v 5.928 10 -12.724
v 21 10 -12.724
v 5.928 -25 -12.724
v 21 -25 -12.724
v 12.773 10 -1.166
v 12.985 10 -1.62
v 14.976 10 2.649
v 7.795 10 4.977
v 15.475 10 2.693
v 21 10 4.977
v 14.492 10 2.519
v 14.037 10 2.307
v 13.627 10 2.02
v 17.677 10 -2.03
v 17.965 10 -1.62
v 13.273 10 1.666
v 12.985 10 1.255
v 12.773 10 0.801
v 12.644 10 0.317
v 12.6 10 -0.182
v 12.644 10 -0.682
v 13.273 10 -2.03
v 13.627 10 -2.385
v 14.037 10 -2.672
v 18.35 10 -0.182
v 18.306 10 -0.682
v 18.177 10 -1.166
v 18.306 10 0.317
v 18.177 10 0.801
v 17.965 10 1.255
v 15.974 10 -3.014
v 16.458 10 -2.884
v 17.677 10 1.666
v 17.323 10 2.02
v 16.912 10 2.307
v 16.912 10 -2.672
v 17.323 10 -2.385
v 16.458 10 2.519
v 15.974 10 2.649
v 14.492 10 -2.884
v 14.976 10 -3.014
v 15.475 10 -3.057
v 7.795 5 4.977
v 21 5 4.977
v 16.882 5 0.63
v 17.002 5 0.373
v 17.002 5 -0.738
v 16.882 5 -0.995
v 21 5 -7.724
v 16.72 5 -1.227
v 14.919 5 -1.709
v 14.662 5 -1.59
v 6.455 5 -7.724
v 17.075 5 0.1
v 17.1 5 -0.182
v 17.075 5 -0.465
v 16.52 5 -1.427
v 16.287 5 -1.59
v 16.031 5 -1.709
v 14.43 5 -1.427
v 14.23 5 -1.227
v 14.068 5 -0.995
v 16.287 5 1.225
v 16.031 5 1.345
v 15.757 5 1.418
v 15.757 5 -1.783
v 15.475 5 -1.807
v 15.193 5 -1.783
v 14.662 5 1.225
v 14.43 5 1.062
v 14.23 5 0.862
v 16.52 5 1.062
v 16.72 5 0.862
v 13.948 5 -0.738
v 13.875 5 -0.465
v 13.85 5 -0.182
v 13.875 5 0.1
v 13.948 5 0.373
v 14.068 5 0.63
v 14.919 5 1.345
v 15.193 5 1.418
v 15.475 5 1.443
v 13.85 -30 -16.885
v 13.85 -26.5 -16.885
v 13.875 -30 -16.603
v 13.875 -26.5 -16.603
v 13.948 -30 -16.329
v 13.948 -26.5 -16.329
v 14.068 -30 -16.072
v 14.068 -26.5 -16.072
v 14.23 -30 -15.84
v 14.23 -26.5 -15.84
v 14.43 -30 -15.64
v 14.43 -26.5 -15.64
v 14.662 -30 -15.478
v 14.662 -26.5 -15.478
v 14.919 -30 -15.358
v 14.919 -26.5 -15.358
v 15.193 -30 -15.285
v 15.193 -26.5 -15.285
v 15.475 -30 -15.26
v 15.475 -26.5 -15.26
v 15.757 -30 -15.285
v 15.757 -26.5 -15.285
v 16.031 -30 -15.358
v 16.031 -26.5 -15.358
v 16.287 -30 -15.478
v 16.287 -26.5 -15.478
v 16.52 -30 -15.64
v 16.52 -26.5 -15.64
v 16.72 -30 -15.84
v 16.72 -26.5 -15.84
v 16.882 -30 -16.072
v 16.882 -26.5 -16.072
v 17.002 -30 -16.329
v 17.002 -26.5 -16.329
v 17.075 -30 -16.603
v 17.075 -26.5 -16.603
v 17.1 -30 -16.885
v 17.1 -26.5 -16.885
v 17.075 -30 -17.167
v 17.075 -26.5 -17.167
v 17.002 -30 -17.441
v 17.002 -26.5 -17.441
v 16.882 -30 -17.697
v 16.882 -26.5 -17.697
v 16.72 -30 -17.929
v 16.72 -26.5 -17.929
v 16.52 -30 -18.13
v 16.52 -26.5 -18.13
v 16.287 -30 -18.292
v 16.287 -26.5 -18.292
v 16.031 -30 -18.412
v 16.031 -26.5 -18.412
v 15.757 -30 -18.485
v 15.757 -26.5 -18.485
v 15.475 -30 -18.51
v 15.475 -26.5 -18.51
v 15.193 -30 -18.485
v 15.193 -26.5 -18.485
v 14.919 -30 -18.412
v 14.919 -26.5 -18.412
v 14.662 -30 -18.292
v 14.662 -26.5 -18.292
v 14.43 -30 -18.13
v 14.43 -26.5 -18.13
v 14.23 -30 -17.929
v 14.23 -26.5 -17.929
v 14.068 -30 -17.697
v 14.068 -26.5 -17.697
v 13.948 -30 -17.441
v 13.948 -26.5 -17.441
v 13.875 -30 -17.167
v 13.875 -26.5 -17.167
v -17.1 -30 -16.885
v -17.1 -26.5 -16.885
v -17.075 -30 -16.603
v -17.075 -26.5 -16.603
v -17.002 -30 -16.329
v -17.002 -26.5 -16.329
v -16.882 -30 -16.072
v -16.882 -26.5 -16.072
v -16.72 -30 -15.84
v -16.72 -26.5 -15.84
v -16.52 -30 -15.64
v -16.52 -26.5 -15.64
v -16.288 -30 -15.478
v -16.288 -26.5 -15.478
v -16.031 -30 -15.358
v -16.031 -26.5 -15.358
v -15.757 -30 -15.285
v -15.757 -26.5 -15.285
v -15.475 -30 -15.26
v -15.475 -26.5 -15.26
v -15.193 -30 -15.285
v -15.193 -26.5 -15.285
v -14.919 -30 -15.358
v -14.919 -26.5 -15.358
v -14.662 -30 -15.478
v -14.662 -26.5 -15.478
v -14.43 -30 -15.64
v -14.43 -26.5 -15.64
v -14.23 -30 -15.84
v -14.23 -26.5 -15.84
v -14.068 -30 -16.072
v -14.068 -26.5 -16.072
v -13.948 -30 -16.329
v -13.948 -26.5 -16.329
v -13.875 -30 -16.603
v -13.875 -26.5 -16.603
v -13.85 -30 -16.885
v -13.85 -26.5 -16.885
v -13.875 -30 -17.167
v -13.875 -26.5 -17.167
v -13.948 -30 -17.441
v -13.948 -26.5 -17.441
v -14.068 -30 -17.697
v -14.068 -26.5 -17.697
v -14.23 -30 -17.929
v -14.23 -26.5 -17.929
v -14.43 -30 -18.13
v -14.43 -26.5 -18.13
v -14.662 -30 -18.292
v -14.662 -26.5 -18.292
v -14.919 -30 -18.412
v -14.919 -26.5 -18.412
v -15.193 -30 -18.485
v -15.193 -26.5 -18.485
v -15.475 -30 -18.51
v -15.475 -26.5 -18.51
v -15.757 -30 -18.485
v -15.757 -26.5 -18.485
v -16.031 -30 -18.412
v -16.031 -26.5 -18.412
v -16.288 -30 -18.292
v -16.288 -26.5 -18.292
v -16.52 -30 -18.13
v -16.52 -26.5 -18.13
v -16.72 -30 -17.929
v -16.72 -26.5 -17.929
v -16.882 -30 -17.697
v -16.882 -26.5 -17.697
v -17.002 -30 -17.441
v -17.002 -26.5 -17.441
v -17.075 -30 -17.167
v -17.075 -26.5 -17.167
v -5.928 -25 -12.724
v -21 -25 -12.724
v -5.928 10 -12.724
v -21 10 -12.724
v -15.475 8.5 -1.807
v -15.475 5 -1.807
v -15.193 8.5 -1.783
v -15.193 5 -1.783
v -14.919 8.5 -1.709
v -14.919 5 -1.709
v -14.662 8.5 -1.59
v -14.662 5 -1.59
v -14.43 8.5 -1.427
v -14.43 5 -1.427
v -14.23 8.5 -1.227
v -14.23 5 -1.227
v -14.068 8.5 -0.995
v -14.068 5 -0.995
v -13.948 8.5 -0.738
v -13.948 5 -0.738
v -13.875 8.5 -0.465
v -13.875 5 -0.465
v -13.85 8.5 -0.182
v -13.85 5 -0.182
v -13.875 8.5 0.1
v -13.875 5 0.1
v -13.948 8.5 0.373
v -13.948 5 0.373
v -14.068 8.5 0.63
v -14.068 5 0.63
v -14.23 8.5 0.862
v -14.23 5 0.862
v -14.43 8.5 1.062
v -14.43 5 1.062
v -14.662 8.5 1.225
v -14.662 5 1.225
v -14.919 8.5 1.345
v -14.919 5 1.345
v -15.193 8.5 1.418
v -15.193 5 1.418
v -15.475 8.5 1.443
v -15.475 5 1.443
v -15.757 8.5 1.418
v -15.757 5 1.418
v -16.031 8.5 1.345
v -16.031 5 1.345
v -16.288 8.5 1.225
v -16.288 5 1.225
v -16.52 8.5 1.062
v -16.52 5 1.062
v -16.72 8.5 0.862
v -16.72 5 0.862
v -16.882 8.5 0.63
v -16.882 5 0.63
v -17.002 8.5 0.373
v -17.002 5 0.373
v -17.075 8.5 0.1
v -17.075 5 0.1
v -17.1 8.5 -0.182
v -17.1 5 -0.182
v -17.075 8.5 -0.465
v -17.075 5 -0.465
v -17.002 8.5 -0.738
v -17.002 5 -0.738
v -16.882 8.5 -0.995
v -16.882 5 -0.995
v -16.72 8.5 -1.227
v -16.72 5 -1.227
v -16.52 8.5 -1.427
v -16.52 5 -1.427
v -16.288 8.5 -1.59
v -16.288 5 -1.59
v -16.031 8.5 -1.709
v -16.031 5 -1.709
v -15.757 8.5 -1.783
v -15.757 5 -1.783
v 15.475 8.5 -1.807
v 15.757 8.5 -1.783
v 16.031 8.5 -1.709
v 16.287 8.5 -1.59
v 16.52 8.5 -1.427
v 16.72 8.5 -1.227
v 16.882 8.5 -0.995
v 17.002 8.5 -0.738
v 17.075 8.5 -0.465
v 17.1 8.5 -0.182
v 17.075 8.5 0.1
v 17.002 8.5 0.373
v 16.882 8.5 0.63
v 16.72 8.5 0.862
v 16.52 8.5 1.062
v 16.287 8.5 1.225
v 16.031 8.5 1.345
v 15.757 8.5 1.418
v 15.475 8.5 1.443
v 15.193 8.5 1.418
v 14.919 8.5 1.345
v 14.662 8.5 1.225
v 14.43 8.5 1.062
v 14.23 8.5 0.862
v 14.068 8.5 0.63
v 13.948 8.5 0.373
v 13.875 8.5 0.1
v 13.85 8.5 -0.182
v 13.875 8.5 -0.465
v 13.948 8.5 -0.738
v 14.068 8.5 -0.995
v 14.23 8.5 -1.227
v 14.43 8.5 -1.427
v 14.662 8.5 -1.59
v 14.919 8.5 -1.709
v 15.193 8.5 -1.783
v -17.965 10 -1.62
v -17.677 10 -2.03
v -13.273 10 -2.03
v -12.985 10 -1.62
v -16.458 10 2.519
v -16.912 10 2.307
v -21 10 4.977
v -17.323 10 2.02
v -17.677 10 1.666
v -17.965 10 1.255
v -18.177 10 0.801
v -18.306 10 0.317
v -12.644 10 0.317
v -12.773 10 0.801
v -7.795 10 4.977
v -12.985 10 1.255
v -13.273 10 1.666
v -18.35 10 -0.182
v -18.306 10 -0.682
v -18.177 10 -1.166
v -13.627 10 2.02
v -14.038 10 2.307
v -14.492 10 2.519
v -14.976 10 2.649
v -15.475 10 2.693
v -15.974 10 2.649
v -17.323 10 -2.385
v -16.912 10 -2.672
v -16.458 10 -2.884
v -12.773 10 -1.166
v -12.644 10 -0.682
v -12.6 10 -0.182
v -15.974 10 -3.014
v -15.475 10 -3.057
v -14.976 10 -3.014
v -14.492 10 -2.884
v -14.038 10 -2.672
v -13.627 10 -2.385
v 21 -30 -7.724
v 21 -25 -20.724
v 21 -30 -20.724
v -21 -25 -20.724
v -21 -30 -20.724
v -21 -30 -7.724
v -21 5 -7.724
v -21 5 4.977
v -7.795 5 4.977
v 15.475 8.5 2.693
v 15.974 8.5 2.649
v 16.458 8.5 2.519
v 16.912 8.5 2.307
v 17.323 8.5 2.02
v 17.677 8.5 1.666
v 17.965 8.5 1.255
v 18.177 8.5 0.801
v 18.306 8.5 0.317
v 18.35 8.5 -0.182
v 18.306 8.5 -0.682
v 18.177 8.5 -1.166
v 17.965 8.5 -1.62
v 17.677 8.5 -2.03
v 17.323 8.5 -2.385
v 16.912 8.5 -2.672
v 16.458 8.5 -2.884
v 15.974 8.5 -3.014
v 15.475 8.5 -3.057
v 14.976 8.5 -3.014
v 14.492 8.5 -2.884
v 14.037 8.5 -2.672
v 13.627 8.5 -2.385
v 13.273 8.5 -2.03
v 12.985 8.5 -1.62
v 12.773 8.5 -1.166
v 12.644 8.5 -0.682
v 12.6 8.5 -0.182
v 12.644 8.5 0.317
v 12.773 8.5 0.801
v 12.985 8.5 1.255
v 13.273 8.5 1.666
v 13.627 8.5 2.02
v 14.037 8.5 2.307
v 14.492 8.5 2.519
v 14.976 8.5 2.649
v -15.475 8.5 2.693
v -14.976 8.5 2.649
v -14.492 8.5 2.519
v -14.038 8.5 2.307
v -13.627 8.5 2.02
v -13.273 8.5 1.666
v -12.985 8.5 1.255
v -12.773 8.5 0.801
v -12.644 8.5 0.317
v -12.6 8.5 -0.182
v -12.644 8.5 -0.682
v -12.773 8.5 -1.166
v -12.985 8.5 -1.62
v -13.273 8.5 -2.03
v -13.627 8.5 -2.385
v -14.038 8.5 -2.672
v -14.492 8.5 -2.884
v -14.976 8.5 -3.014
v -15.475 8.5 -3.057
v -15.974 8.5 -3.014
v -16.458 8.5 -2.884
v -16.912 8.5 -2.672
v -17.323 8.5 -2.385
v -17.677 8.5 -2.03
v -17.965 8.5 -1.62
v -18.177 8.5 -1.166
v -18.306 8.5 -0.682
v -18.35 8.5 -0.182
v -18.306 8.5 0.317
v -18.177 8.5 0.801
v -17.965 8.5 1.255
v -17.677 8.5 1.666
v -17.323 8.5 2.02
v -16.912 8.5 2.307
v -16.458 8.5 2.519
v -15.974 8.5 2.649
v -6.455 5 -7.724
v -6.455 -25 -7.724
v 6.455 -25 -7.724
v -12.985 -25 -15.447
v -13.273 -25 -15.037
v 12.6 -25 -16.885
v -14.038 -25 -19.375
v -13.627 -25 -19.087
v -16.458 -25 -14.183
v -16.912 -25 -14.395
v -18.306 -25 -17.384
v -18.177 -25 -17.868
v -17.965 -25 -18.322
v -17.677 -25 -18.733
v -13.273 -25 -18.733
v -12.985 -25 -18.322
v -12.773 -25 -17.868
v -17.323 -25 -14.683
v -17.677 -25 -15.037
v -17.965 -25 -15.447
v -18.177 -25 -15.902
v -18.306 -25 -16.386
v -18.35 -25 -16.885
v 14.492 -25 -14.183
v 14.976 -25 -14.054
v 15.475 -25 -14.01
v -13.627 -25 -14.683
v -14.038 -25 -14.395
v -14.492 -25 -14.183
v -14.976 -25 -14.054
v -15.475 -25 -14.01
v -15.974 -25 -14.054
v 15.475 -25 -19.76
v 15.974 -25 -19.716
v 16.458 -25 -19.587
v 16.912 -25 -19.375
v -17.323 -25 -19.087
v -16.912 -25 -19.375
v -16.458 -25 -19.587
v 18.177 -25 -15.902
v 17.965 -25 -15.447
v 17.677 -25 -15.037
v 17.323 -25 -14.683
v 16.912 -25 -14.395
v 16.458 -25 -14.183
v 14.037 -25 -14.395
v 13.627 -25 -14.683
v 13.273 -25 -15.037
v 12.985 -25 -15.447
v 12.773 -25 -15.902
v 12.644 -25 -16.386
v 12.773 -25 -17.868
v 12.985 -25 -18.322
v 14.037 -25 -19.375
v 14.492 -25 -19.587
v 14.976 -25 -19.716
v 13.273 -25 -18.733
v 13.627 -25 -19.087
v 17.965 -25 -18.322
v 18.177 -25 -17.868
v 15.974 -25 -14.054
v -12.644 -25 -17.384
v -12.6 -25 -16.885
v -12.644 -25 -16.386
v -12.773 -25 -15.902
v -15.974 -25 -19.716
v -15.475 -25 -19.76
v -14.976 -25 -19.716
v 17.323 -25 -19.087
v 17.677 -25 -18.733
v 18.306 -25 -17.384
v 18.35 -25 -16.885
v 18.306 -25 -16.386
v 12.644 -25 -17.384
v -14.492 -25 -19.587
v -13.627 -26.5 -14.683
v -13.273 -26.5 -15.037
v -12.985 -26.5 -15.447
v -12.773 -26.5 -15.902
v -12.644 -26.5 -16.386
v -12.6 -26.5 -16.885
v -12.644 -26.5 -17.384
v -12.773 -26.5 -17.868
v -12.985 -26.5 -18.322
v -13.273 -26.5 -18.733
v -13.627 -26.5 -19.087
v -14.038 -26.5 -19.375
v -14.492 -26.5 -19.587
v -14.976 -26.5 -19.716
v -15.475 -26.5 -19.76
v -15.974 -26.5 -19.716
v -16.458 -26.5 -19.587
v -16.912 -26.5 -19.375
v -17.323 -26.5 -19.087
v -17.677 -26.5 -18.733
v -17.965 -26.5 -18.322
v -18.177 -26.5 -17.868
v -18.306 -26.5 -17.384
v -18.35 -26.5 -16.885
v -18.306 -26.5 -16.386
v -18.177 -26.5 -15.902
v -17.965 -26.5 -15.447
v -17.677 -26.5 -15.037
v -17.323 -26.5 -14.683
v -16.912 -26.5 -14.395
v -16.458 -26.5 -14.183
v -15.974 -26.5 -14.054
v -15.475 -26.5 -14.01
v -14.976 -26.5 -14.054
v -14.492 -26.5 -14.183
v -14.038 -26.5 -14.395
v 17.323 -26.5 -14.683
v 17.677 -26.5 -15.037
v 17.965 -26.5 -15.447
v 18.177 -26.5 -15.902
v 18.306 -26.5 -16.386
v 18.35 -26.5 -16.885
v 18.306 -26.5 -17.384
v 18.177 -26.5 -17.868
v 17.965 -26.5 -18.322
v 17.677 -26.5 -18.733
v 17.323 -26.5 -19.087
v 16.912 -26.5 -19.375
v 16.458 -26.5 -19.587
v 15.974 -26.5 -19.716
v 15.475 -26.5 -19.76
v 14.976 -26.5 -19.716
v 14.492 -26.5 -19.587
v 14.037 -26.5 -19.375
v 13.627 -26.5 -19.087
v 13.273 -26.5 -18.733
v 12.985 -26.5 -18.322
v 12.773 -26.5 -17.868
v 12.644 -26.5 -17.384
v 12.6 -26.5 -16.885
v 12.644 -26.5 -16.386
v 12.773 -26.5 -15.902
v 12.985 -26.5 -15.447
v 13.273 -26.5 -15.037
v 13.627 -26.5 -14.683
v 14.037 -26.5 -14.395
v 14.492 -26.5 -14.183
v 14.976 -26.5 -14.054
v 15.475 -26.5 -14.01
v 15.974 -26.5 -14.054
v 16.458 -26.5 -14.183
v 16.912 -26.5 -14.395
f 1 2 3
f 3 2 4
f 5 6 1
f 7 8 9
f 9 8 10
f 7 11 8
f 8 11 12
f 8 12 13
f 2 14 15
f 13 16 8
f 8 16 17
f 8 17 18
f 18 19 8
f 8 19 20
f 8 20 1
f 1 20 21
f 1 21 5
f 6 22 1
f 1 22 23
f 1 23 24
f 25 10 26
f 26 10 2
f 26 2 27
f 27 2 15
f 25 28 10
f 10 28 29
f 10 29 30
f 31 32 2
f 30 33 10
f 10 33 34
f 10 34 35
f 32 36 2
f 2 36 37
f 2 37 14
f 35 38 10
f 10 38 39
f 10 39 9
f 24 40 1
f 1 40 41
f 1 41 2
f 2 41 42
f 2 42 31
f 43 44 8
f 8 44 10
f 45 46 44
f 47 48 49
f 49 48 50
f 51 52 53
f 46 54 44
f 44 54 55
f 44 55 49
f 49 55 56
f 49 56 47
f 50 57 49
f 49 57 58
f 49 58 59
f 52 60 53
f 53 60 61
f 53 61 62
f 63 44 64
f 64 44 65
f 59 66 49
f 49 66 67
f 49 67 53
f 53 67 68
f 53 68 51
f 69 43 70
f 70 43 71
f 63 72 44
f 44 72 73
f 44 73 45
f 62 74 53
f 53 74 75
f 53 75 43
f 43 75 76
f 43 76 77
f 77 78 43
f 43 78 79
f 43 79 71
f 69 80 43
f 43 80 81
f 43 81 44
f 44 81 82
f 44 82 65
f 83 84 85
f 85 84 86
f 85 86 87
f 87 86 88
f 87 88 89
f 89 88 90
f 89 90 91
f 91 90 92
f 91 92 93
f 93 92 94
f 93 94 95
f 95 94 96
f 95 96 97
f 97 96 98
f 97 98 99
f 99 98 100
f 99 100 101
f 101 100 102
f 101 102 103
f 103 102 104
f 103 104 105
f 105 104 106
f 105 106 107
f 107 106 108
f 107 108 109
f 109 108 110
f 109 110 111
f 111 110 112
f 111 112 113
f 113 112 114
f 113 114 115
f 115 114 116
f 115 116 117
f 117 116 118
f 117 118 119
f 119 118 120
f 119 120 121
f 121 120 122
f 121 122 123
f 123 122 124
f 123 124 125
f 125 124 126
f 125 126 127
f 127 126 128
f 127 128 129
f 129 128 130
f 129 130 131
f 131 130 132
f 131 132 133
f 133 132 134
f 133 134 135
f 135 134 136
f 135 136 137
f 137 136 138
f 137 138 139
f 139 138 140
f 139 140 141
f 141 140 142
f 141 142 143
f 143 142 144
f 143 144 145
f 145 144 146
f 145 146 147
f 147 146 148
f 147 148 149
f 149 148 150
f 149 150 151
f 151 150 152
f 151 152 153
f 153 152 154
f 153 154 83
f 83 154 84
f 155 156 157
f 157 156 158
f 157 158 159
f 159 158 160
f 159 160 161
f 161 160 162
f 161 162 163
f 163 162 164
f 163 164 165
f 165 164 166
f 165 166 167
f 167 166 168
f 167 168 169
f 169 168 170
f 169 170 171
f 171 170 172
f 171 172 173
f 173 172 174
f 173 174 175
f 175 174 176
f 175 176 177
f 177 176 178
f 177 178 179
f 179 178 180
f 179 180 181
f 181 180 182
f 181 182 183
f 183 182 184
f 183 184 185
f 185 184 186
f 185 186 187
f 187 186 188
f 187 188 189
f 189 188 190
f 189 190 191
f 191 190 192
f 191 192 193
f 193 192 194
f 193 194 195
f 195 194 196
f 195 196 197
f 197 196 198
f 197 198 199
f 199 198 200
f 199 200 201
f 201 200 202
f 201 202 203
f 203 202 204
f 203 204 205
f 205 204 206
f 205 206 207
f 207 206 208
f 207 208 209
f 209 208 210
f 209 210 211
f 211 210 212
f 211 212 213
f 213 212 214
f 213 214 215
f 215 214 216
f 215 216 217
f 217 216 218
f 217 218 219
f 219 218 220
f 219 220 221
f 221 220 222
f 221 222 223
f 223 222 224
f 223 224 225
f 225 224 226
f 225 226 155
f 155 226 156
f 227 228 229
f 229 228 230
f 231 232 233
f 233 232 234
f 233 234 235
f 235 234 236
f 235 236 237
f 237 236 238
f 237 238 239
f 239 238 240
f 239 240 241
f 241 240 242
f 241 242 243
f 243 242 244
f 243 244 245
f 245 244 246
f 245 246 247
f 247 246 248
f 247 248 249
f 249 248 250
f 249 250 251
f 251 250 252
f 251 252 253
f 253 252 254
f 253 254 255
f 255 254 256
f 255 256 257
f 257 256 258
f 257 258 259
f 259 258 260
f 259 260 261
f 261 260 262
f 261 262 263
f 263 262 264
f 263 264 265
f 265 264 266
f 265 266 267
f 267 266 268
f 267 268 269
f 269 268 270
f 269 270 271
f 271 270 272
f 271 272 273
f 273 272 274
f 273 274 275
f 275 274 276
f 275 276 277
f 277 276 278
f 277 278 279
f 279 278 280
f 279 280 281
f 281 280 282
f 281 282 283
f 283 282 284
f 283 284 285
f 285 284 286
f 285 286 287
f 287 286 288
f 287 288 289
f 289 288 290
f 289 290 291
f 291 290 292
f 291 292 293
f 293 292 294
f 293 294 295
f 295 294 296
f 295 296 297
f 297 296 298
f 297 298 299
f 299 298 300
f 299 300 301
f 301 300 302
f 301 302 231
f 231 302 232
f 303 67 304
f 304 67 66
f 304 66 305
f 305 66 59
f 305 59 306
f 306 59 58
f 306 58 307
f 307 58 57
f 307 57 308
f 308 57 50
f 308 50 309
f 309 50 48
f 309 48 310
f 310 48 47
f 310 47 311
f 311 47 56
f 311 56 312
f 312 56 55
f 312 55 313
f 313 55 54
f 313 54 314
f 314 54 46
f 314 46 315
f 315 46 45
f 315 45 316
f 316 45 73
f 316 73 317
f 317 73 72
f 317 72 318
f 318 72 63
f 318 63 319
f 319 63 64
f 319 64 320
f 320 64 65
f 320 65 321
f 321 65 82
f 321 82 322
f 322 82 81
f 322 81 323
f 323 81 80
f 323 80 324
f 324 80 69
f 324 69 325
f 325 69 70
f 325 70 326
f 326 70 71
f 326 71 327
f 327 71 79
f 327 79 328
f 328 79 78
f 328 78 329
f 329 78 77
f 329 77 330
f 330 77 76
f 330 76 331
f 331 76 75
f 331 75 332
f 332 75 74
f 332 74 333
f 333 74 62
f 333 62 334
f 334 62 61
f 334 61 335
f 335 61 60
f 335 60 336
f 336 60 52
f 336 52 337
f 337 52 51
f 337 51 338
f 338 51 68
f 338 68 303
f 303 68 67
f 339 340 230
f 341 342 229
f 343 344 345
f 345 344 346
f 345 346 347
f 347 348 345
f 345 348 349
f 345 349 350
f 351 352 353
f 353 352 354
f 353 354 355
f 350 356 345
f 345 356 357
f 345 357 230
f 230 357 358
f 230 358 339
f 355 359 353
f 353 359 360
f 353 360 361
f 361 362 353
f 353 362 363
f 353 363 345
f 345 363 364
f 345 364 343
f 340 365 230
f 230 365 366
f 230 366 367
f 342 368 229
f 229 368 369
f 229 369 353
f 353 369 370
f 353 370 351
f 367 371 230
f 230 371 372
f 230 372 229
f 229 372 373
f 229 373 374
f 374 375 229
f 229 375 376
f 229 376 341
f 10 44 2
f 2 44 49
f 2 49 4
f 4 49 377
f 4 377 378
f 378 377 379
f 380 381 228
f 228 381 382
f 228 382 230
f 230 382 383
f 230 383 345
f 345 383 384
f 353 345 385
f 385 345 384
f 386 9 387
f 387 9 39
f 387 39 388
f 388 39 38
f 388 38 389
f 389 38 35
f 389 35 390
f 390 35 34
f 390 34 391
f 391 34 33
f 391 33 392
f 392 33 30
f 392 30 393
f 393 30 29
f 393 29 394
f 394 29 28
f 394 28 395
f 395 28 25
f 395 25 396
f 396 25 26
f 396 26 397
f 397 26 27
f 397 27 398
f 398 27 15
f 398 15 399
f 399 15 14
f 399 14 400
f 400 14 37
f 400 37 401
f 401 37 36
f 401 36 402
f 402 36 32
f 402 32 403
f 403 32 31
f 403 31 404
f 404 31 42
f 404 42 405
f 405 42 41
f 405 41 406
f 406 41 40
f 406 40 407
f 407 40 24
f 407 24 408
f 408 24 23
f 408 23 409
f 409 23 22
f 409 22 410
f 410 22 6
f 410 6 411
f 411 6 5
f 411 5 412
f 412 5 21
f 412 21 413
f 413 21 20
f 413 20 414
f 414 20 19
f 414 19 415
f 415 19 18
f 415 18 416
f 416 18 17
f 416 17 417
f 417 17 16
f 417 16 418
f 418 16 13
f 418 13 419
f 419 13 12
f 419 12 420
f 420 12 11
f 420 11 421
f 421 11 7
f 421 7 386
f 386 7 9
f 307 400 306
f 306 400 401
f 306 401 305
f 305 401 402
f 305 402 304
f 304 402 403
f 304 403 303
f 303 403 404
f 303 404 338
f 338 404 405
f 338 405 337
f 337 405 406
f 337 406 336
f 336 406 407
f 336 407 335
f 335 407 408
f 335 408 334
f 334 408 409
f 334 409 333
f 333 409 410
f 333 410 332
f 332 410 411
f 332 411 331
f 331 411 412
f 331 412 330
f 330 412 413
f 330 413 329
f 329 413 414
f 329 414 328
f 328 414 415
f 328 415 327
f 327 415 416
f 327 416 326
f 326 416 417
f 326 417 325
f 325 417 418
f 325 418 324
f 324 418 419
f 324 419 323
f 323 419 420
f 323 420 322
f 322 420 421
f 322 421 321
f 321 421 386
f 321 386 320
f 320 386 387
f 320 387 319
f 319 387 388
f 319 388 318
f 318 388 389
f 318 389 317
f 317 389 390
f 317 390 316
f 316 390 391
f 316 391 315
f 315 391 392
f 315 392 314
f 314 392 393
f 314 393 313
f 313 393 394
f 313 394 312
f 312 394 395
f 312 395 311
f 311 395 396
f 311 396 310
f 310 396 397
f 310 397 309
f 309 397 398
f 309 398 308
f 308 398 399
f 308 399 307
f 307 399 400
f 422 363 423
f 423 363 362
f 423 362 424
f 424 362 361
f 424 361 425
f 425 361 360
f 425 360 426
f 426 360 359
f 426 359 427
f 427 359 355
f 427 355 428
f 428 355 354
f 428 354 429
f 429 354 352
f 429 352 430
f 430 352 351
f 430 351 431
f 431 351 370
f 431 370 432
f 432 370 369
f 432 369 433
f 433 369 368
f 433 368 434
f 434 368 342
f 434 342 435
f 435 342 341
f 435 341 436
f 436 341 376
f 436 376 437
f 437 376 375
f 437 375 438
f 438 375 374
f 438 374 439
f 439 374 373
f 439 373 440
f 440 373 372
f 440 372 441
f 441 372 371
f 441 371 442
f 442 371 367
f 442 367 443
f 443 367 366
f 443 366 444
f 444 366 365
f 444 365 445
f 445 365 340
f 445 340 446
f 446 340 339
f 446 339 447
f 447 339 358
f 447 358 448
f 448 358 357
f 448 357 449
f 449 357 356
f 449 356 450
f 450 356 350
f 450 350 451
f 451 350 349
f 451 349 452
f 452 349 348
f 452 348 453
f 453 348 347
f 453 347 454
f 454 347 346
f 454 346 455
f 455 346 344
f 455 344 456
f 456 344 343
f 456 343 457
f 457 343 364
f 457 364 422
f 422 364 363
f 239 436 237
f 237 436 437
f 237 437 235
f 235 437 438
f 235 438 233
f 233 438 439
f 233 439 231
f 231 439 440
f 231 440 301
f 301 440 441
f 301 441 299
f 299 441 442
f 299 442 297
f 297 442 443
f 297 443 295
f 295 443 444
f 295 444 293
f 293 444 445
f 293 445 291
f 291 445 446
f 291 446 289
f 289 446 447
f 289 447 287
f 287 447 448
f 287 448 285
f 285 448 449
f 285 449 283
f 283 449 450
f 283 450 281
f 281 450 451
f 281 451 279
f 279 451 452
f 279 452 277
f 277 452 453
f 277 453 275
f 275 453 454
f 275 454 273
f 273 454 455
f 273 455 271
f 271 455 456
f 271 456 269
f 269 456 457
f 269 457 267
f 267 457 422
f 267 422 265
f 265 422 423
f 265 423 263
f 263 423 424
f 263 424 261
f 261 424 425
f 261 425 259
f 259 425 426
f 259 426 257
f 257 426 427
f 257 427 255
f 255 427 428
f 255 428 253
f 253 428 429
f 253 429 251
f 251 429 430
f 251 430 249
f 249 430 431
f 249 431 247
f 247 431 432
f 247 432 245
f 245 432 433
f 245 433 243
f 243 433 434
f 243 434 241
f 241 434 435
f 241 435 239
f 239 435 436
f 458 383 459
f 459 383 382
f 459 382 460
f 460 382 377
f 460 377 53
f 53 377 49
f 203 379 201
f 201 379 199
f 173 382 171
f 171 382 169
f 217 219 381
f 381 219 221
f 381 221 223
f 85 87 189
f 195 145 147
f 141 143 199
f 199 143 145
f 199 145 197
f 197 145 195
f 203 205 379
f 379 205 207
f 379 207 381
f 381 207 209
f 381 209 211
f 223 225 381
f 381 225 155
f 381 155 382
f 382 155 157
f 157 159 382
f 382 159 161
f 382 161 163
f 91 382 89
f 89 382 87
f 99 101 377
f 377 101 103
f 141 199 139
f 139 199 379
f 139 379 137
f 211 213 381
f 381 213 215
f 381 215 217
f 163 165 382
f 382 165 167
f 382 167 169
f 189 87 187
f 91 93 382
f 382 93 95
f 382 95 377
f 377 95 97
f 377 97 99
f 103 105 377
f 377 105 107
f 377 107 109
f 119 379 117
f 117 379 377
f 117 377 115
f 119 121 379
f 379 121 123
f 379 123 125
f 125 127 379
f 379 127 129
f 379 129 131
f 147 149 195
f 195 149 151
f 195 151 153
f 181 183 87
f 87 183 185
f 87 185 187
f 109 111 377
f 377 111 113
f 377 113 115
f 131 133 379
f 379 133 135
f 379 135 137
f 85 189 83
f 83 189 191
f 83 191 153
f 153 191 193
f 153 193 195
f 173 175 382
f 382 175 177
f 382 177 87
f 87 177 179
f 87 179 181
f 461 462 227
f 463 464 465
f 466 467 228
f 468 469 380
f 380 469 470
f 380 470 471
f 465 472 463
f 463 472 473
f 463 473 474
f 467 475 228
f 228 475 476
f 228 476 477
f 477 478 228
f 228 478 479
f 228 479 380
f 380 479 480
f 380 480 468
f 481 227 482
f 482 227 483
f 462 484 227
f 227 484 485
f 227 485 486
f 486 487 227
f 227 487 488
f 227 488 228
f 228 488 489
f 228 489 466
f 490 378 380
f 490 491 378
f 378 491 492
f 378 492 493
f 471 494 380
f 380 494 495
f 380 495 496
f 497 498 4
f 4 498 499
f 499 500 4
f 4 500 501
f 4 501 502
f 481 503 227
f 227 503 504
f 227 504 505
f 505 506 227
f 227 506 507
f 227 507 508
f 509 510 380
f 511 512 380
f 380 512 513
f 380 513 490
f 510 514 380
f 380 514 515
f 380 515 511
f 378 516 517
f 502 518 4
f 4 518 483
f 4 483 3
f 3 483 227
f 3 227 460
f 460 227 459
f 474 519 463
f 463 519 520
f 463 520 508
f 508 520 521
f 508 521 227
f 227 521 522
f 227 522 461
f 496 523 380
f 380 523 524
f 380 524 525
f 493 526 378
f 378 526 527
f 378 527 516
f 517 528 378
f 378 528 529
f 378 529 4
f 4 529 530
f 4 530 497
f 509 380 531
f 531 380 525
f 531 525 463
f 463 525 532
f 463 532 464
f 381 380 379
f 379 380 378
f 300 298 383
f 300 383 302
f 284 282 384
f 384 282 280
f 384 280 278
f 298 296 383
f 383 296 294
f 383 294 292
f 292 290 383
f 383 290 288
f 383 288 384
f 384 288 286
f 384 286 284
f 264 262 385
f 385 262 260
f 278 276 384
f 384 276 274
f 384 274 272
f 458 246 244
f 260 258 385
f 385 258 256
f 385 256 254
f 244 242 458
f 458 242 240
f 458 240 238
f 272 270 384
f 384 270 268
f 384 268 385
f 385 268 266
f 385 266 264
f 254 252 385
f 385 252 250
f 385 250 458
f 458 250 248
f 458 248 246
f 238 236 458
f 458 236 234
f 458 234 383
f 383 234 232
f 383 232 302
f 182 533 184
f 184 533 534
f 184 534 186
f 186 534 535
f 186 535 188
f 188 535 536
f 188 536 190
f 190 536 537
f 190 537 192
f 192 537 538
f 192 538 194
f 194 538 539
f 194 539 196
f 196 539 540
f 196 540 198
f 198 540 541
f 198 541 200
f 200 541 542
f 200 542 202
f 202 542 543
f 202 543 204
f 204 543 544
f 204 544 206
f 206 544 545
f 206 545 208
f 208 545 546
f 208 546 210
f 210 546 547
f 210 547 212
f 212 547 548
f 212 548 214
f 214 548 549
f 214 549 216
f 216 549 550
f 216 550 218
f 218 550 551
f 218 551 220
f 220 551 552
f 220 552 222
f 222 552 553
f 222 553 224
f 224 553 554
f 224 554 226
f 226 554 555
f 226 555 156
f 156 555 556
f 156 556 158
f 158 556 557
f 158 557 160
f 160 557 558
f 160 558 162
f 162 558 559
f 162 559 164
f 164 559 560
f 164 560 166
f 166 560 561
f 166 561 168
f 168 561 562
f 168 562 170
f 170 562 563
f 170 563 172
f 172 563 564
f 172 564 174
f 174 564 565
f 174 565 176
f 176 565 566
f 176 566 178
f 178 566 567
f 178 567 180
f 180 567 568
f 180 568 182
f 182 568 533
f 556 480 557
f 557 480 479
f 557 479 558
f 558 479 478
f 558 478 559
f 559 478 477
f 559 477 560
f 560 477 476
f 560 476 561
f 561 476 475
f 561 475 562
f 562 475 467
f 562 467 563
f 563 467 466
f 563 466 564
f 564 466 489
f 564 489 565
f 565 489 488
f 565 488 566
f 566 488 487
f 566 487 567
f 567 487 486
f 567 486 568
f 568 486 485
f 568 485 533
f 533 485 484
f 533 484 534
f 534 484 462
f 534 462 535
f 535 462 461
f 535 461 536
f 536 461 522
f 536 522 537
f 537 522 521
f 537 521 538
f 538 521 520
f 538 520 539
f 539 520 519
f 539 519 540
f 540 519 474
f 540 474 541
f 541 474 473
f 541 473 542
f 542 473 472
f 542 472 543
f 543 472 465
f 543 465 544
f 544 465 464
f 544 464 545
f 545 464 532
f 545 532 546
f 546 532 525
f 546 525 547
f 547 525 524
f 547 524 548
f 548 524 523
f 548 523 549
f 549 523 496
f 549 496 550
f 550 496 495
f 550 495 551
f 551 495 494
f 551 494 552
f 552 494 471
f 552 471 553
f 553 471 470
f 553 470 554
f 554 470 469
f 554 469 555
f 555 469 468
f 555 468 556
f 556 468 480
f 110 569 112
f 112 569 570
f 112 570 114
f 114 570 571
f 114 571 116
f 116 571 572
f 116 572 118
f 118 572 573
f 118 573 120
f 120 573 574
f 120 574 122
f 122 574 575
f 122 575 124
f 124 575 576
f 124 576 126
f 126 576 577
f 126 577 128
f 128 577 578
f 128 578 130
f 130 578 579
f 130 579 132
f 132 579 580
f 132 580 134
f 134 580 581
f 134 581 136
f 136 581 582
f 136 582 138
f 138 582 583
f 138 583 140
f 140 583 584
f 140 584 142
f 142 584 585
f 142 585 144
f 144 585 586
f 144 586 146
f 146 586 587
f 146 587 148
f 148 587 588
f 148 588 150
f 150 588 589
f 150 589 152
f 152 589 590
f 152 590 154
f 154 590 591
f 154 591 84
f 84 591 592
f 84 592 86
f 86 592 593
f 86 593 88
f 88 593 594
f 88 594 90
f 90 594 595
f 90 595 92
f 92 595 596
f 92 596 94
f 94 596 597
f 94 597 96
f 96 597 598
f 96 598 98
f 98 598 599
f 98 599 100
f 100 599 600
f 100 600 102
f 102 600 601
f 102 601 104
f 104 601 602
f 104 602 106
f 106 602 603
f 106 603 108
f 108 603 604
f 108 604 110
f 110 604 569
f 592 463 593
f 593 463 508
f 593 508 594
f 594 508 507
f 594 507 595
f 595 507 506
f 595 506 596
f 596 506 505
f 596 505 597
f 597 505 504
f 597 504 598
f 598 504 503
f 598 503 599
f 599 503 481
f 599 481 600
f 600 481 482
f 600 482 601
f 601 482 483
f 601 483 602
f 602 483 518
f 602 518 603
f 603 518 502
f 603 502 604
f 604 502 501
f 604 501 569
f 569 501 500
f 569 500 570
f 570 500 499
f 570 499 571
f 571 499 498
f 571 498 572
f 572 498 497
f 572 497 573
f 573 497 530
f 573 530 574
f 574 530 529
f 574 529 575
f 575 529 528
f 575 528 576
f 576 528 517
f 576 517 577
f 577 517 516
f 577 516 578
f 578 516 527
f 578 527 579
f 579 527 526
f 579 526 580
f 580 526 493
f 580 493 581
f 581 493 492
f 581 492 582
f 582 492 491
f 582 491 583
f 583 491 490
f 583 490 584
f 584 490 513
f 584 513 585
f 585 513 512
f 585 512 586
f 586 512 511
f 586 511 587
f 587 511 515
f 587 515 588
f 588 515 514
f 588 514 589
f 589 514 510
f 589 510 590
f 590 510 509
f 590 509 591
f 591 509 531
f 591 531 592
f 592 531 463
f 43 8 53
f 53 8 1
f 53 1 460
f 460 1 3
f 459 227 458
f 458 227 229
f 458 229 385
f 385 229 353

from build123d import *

# Parameters (mm, degrees)
SKETCH2_R           = 1.625
BOSS_EXTRUDE1_DEPTH = 10
SKETCH3_R           = 2.875
CUT_EXTRUDE1_DEPTH  = 1.5
SKETCH4_W           = 42
SKETCH4_H           = 5
BOSS_EXTRUDE2_DEPTH = 30
SKETCH5_W           = 42
SKETCH5_H           = 5
BOSS_EXTRUDE3_DEPTH = 8
CUT_EXTRUDE2_REACH  = 44
SKETCH6_W           = 12.701613413
SKETCH6_H           = 5
CUT_EXTRUDE3_REACH  = 7
SKETCH8_R           = 1.625
SKETCH9_R           = 2.875
CUT_EXTRUDE4_DEPTH  = 1.5
CUT_EXTRUDE5_DEPTH  = 35


with BuildPart() as part:
    # Sketch2 → Boss-Extrude1 (new body)
    with BuildSketch(Plane(origin=(0, 0, 0), x_dir=(1, 0, 0), z_dir=(0, 1, 0))):
        Polygon((-21, 4.97717469), (-21, -4.97717469), (21, -4.97717469), (21, 4.97717469), (21, 12.724438723), (-21, 12.724438723), align=None)
        with Locations((-15.475, 0.182409544)):
            Circle(SKETCH2_R, mode=Mode.SUBTRACT)
        with Locations((15.475, 0.182409544)):
            Circle(SKETCH2_R, mode=Mode.SUBTRACT)
    extrude(amount=BOSS_EXTRUDE1_DEPTH)

    # Sketch3 → Cut-Extrude1 (cut)
    with BuildSketch(Plane(origin=(0, 10, 0), x_dir=(1, 0, 0), z_dir=(0, 1, 0))):
        with Locations((-15.475, 0.182409544)):
            Circle(SKETCH3_R)
        with Locations((15.475, 0.182409544)):
            Circle(SKETCH3_R)
    extrude(amount=-CUT_EXTRUDE1_DEPTH, mode=Mode.SUBTRACT)

    # Sketch4 → Boss-Extrude2 (add)
    with BuildSketch(Plane.XZ):
        with Locations((0, -10.224438723)):
            Rectangle(SKETCH4_W, SKETCH4_H)
    extrude(amount=BOSS_EXTRUDE2_DEPTH)

    # Sketch5 → Boss-Extrude3 (add)
    with BuildSketch(Plane(origin=(0, 0, -12.724438723), x_dir=(-1, 0, 0), z_dir=(0, 0, -1))):
        with Locations((0, -27.5)):
            Rectangle(SKETCH5_W, SKETCH5_H)
    extrude(amount=BOSS_EXTRUDE3_DEPTH)

    # Sketch6 → Cut-Extrude2 (cut, up to next)
    with BuildSketch(Plane.ZY.offset(21), mode=Mode.PRIVATE) as cut_extrude2_sk1:
        with Locations((-1.373632017, 2.5)):
            Rectangle(SKETCH6_W, SKETCH6_H)
    cut_extrude2_tool1 = extrude(cut_extrude2_sk1.sketch, amount=-CUT_EXTRUDE2_REACH, mode=Mode.PRIVATE) & part.part
    add(cut_extrude2_tool1.solids().sort_by_distance((-21, 2.5, -1.373632))[0], mode=Mode.SUBTRACT)

    # Sketch8 → Cut-Extrude3 (cut, up to next)
    with BuildSketch(Plane(origin=(0, -25, 0), x_dir=(1, 0, 0), z_dir=(0, 1, 0)), mode=Mode.PRIVATE) as cut_extrude3_sk1:
        with Locations((-15.475, 16.884966607)):
            Circle(SKETCH8_R)
    cut_extrude3_tool1 = extrude(cut_extrude3_sk1.sketch, amount=-CUT_EXTRUDE3_REACH, mode=Mode.PRIVATE) & part.part
    add(cut_extrude3_tool1.solids().sort_by_distance((-15.475, -25, -16.884967))[0], mode=Mode.SUBTRACT)
    # Sketch8 → Cut-Extrude3 (cut, up to next)
    with BuildSketch(Plane(origin=(0, -25, 0), x_dir=(1, 0, 0), z_dir=(0, 1, 0)), mode=Mode.PRIVATE) as cut_extrude3_sk2:
        with Locations((15.475, 16.884966607)):
            Circle(SKETCH8_R)
    cut_extrude3_tool2 = extrude(cut_extrude3_sk2.sketch, amount=-CUT_EXTRUDE3_REACH, mode=Mode.PRIVATE) & part.part
    add(cut_extrude3_tool2.solids().sort_by_distance((15.475, -25, -16.884967))[0], mode=Mode.SUBTRACT)

    # Sketch9 → Cut-Extrude4 (cut)
    with BuildSketch(Plane(origin=(0, -25, 0), x_dir=(1, 0, 0), z_dir=(0, 1, 0))):
        with Locations((-15.475, 16.884966607)):
            Circle(SKETCH9_R)
        with Locations((15.475, 16.884966607)):
            Circle(SKETCH9_R)
    extrude(amount=-CUT_EXTRUDE4_DEPTH, mode=Mode.SUBTRACT)

    # Sketch11 → Cut-Extrude5 (cut)
    with BuildSketch(Plane(origin=(0, 10, 0), x_dir=(1, 0, 0), z_dir=(0, 1, 0))):
        Polygon((-7.795347272, -4.97717469), (-5.927938177, 12.724438723), (5.927938177, 12.724438723), (7.795347272, -4.97717469), align=None)
    extrude(amount=-CUT_EXTRUDE5_DEPTH, mode=Mode.SUBTRACT)


solid = part.part
